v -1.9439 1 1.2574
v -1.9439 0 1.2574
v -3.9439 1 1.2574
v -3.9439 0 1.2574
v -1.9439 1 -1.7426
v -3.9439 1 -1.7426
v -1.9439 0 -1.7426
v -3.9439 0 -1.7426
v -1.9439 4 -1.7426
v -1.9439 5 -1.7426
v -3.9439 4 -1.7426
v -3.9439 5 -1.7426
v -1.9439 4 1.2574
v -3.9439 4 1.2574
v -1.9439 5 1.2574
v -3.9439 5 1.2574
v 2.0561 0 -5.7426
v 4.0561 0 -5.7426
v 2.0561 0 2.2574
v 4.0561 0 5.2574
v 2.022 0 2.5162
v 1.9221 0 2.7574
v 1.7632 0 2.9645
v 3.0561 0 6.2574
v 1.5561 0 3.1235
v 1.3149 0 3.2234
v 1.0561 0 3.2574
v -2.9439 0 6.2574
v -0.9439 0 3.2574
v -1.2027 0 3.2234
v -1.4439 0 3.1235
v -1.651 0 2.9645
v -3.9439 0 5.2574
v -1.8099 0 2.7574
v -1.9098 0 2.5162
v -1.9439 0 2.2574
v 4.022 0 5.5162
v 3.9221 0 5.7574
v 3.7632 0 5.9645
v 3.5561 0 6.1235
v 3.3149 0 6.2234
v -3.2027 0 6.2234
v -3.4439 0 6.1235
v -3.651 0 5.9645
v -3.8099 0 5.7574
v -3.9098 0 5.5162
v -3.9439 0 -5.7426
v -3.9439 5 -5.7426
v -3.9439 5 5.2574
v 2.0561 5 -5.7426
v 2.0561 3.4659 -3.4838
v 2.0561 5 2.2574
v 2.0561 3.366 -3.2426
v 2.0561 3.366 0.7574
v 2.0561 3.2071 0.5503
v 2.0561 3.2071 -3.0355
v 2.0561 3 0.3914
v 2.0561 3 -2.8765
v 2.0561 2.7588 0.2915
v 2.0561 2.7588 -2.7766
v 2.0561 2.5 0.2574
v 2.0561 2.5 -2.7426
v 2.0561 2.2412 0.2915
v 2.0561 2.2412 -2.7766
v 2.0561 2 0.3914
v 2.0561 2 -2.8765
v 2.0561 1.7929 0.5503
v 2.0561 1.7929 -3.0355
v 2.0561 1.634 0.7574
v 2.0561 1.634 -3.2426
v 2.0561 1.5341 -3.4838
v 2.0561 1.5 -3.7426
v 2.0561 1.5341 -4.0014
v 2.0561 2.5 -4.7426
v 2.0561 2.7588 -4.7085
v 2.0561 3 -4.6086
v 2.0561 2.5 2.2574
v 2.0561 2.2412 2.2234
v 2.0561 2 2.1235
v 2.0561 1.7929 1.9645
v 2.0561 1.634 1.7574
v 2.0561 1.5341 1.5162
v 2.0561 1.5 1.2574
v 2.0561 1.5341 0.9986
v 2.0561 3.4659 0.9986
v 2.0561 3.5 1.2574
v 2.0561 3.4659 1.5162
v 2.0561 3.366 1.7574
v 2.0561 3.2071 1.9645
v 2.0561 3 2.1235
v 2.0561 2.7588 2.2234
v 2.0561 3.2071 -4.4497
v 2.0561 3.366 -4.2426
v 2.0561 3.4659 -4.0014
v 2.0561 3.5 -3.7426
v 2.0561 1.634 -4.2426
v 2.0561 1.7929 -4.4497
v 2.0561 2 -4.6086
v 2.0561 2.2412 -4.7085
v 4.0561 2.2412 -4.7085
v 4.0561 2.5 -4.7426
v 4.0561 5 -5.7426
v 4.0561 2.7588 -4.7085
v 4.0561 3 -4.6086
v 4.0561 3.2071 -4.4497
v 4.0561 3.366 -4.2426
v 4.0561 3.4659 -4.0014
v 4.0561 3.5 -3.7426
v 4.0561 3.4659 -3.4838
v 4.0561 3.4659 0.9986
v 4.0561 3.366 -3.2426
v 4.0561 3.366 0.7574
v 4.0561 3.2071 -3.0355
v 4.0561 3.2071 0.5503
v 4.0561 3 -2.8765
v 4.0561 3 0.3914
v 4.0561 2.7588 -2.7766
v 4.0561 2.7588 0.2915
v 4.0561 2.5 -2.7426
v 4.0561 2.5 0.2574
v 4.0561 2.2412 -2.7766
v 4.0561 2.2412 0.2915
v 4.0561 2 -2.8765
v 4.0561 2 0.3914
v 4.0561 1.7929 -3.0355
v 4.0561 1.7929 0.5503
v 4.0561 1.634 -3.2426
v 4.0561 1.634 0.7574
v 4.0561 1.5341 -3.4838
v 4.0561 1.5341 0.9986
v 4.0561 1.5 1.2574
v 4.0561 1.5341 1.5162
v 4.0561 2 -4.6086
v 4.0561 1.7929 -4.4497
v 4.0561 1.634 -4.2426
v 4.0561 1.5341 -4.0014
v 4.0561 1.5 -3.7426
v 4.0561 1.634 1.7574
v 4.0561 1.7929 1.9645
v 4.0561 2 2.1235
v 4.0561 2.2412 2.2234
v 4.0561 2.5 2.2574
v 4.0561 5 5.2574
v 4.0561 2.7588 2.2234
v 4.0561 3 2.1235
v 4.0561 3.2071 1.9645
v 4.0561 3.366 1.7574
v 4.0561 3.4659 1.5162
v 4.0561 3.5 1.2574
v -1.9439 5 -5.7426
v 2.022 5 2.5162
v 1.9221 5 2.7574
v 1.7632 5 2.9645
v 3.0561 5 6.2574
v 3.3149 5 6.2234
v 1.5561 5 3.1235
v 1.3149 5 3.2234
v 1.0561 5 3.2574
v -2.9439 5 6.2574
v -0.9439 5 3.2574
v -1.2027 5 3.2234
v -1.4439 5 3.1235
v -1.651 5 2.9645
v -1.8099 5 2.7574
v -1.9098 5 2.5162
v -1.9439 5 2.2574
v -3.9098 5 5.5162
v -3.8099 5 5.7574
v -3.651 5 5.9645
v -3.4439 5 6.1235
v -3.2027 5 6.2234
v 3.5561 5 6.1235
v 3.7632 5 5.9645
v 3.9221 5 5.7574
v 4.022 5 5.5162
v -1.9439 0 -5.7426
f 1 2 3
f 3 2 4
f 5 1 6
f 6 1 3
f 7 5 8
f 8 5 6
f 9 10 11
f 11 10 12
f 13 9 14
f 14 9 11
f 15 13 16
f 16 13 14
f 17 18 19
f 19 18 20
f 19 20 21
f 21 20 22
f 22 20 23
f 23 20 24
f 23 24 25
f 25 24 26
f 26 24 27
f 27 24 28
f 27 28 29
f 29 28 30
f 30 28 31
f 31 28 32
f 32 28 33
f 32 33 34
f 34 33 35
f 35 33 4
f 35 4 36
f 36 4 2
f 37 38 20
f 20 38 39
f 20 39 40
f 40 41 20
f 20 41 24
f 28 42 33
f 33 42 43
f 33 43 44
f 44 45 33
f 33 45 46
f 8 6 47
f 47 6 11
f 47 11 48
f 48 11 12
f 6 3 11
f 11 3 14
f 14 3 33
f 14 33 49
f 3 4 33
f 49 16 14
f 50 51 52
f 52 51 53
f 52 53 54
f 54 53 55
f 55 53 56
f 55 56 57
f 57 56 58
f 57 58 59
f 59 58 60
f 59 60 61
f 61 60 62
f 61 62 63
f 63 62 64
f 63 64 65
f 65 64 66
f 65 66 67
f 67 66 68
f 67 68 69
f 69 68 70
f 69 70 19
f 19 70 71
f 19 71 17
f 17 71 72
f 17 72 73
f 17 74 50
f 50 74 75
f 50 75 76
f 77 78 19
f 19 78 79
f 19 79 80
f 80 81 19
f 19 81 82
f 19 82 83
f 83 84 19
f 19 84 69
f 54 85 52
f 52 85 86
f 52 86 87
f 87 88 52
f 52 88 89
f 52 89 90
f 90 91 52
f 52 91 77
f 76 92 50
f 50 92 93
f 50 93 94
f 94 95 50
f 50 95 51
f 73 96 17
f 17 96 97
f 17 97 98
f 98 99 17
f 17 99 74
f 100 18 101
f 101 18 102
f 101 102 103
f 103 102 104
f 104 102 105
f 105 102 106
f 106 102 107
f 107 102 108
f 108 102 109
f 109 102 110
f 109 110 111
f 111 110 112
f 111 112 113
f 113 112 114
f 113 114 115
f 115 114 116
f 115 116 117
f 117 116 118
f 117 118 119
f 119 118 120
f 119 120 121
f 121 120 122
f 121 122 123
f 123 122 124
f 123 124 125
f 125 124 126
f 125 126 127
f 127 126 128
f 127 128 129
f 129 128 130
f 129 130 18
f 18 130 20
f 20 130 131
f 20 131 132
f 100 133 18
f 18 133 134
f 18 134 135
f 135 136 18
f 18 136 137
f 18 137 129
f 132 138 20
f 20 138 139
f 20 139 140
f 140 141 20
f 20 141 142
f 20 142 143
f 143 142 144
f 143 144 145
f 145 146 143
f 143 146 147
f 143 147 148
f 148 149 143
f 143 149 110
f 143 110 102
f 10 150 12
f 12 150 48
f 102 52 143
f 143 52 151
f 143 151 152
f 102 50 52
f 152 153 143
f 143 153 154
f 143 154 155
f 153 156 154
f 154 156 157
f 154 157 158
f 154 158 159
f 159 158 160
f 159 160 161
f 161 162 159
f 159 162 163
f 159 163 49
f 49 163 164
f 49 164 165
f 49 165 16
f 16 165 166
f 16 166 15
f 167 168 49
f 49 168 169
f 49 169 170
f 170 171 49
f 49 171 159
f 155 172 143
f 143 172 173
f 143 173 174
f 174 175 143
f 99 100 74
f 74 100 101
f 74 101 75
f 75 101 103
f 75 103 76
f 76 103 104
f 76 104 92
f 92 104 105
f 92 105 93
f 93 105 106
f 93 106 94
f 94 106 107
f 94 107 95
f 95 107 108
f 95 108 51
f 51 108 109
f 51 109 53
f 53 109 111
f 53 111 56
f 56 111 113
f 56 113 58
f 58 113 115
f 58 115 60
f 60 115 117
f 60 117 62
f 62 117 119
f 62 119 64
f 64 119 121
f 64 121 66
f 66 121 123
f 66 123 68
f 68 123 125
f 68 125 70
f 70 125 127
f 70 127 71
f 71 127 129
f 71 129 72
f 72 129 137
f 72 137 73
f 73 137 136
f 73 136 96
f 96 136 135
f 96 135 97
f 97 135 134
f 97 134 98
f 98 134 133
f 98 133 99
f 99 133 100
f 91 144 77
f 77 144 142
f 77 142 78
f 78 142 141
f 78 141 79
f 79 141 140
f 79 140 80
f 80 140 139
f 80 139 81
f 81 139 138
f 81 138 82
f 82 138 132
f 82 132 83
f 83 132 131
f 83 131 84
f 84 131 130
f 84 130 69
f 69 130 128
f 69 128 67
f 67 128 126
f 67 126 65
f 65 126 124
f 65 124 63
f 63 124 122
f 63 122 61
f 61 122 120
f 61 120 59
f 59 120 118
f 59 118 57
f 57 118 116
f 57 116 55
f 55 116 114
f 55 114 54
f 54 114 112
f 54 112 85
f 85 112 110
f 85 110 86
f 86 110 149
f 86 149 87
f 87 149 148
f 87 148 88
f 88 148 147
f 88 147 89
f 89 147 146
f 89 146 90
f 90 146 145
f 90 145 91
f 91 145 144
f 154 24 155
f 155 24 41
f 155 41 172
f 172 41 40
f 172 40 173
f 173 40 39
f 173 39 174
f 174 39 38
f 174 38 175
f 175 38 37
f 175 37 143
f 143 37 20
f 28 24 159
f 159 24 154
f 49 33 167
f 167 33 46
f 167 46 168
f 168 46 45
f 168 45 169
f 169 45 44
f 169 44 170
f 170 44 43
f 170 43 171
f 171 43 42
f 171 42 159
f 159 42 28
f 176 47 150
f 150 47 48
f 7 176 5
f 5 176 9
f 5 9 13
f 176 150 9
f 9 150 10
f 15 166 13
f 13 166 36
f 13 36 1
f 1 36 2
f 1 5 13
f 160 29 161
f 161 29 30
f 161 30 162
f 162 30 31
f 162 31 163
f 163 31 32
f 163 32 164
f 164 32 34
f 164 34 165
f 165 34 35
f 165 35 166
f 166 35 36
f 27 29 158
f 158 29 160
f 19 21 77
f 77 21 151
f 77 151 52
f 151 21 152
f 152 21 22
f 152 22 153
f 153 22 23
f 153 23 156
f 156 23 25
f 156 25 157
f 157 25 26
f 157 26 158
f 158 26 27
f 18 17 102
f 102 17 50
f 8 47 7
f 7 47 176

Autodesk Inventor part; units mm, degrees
ref_plane "YZ Plane" through (0, 0, 0) normal (1, 0, 0) x (0, 1, 0)
ref_plane "XZ Plane" through (0, 0, 0) normal (0, 1, 0) x (-1, 0, 0)
ref_plane "XY Plane" through (0, 0, 0) normal (0, 0, 1) x (1, 0, 0)
sketch "Sketch1" plane through (0, 0, 0) normal (0, 1, 0) x (-1, 0, 0)
  line L0 (-4.0561, -5.7426) -> (-4.0561, 5.2574)
  line L1 (-3.0561, 6.2574) -> (2.9439, 6.2574)
  line L2 (3.9439, 5.2574) -> (3.9439, -5.7426)
  line L3 (3.9439, -5.7426) -> (1.9439, -5.7426)
  line L4 (1.9439, -5.7426) -> (1.9439, 2.2574)
  line L5 (0.9439, 3.2574) -> (-1.0561, 3.2574)
  line L6 (-2.0561, 2.2574) -> (-2.0561, -5.7426)
  line L7 (-2.0561, -5.7426) -> (-4.0561, -5.7426)
  arc A0 (-1.0561, 3.2574) -> (-2.0561, 2.2574) centre (-1.0561, 2.2574) ccw
  arc A1 (1.9439, 2.2574) -> (0.9439, 3.2574) centre (0.9439, 2.2574) ccw
  arc A2 (-3.0561, 6.2574) -> (-4.0561, 5.2574) centre (-3.0561, 5.2574) ccw
  arc A3 (3.9439, 5.2574) -> (2.9439, 6.2574) centre (2.9439, 5.2574) ccw
  point P0 (0, 0)
  point P1 (-4.0561, 6.2574)
  point P2 (3.9439, 6.2574)
  point P3 (1.9439, 3.2574)
  point P4 (-2.0561, 3.2574)
  dimension "d0" = 12
  dimension "d1" = 2
  dimension "d2" = 2
  dimension "d3" = 8
  dimension "d4" = 3
  dimension "d20" = 1
extrude "Extrusion1" add sketch "Sketch1" along normal blind 5
sketch "Sketch2" plane through (4.0561, 0, 6.2574) normal (1, 0, 0) x (0, 0, -1)
  circle A0 centre (10, 2.5) radius 1
  circle A1 centre (5, 2.5) radius 1
  line L0 (12, 0) -> (12, 5) projected
  line L1 (1, 5) -> (12, 5) projected
  point P0 (6.2574, 0)
  point P1 (0, 5)
  dimension "d7" = 2
  dimension "d8" = 2
  dimension "d9" = 2
  dimension "d10" = 2.5
  dimension "d11" = 2.5
  dimension "d12" = 5
extrude "Extrusion2" cut sketch "Sketch2" against normal up to surface (2 mm away)
sketch "Sketch3" plane through (-3.9439, 0, -5.7426) normal (-1, 0, 0) x (0, 0, 1)
  line L0 (7, 0.0877) -> (7, 1)
  line L1 (7, 1) -> (4, 1)
  line L2 (4, 1) -> (4, 0)
  line L3 (0, 0) -> (11, 0) projected
  line L4 (11, 5) -> (0, 5) projected
  line L5 (7, 5) -> (7, 4)
  line L6 (7, 4) -> (4, 4)
  line L7 (4, 4) -> (4, 5)
  line L8 (7, 0.0877) -> (7, 0)
  line L9 (0, 0) -> (0, 5) projected
  point P0 (5.7426, 0)
  point P1 (12, 0)
  point P2 (12, 5)
  dimension "d15" = 1
  dimension "d16" = 1
  dimension "d17" = 3
  dimension "d21" = 4
extrude "Extrusion3" cut sketch "Sketch3" against normal up to next
properties part number "crochet"
